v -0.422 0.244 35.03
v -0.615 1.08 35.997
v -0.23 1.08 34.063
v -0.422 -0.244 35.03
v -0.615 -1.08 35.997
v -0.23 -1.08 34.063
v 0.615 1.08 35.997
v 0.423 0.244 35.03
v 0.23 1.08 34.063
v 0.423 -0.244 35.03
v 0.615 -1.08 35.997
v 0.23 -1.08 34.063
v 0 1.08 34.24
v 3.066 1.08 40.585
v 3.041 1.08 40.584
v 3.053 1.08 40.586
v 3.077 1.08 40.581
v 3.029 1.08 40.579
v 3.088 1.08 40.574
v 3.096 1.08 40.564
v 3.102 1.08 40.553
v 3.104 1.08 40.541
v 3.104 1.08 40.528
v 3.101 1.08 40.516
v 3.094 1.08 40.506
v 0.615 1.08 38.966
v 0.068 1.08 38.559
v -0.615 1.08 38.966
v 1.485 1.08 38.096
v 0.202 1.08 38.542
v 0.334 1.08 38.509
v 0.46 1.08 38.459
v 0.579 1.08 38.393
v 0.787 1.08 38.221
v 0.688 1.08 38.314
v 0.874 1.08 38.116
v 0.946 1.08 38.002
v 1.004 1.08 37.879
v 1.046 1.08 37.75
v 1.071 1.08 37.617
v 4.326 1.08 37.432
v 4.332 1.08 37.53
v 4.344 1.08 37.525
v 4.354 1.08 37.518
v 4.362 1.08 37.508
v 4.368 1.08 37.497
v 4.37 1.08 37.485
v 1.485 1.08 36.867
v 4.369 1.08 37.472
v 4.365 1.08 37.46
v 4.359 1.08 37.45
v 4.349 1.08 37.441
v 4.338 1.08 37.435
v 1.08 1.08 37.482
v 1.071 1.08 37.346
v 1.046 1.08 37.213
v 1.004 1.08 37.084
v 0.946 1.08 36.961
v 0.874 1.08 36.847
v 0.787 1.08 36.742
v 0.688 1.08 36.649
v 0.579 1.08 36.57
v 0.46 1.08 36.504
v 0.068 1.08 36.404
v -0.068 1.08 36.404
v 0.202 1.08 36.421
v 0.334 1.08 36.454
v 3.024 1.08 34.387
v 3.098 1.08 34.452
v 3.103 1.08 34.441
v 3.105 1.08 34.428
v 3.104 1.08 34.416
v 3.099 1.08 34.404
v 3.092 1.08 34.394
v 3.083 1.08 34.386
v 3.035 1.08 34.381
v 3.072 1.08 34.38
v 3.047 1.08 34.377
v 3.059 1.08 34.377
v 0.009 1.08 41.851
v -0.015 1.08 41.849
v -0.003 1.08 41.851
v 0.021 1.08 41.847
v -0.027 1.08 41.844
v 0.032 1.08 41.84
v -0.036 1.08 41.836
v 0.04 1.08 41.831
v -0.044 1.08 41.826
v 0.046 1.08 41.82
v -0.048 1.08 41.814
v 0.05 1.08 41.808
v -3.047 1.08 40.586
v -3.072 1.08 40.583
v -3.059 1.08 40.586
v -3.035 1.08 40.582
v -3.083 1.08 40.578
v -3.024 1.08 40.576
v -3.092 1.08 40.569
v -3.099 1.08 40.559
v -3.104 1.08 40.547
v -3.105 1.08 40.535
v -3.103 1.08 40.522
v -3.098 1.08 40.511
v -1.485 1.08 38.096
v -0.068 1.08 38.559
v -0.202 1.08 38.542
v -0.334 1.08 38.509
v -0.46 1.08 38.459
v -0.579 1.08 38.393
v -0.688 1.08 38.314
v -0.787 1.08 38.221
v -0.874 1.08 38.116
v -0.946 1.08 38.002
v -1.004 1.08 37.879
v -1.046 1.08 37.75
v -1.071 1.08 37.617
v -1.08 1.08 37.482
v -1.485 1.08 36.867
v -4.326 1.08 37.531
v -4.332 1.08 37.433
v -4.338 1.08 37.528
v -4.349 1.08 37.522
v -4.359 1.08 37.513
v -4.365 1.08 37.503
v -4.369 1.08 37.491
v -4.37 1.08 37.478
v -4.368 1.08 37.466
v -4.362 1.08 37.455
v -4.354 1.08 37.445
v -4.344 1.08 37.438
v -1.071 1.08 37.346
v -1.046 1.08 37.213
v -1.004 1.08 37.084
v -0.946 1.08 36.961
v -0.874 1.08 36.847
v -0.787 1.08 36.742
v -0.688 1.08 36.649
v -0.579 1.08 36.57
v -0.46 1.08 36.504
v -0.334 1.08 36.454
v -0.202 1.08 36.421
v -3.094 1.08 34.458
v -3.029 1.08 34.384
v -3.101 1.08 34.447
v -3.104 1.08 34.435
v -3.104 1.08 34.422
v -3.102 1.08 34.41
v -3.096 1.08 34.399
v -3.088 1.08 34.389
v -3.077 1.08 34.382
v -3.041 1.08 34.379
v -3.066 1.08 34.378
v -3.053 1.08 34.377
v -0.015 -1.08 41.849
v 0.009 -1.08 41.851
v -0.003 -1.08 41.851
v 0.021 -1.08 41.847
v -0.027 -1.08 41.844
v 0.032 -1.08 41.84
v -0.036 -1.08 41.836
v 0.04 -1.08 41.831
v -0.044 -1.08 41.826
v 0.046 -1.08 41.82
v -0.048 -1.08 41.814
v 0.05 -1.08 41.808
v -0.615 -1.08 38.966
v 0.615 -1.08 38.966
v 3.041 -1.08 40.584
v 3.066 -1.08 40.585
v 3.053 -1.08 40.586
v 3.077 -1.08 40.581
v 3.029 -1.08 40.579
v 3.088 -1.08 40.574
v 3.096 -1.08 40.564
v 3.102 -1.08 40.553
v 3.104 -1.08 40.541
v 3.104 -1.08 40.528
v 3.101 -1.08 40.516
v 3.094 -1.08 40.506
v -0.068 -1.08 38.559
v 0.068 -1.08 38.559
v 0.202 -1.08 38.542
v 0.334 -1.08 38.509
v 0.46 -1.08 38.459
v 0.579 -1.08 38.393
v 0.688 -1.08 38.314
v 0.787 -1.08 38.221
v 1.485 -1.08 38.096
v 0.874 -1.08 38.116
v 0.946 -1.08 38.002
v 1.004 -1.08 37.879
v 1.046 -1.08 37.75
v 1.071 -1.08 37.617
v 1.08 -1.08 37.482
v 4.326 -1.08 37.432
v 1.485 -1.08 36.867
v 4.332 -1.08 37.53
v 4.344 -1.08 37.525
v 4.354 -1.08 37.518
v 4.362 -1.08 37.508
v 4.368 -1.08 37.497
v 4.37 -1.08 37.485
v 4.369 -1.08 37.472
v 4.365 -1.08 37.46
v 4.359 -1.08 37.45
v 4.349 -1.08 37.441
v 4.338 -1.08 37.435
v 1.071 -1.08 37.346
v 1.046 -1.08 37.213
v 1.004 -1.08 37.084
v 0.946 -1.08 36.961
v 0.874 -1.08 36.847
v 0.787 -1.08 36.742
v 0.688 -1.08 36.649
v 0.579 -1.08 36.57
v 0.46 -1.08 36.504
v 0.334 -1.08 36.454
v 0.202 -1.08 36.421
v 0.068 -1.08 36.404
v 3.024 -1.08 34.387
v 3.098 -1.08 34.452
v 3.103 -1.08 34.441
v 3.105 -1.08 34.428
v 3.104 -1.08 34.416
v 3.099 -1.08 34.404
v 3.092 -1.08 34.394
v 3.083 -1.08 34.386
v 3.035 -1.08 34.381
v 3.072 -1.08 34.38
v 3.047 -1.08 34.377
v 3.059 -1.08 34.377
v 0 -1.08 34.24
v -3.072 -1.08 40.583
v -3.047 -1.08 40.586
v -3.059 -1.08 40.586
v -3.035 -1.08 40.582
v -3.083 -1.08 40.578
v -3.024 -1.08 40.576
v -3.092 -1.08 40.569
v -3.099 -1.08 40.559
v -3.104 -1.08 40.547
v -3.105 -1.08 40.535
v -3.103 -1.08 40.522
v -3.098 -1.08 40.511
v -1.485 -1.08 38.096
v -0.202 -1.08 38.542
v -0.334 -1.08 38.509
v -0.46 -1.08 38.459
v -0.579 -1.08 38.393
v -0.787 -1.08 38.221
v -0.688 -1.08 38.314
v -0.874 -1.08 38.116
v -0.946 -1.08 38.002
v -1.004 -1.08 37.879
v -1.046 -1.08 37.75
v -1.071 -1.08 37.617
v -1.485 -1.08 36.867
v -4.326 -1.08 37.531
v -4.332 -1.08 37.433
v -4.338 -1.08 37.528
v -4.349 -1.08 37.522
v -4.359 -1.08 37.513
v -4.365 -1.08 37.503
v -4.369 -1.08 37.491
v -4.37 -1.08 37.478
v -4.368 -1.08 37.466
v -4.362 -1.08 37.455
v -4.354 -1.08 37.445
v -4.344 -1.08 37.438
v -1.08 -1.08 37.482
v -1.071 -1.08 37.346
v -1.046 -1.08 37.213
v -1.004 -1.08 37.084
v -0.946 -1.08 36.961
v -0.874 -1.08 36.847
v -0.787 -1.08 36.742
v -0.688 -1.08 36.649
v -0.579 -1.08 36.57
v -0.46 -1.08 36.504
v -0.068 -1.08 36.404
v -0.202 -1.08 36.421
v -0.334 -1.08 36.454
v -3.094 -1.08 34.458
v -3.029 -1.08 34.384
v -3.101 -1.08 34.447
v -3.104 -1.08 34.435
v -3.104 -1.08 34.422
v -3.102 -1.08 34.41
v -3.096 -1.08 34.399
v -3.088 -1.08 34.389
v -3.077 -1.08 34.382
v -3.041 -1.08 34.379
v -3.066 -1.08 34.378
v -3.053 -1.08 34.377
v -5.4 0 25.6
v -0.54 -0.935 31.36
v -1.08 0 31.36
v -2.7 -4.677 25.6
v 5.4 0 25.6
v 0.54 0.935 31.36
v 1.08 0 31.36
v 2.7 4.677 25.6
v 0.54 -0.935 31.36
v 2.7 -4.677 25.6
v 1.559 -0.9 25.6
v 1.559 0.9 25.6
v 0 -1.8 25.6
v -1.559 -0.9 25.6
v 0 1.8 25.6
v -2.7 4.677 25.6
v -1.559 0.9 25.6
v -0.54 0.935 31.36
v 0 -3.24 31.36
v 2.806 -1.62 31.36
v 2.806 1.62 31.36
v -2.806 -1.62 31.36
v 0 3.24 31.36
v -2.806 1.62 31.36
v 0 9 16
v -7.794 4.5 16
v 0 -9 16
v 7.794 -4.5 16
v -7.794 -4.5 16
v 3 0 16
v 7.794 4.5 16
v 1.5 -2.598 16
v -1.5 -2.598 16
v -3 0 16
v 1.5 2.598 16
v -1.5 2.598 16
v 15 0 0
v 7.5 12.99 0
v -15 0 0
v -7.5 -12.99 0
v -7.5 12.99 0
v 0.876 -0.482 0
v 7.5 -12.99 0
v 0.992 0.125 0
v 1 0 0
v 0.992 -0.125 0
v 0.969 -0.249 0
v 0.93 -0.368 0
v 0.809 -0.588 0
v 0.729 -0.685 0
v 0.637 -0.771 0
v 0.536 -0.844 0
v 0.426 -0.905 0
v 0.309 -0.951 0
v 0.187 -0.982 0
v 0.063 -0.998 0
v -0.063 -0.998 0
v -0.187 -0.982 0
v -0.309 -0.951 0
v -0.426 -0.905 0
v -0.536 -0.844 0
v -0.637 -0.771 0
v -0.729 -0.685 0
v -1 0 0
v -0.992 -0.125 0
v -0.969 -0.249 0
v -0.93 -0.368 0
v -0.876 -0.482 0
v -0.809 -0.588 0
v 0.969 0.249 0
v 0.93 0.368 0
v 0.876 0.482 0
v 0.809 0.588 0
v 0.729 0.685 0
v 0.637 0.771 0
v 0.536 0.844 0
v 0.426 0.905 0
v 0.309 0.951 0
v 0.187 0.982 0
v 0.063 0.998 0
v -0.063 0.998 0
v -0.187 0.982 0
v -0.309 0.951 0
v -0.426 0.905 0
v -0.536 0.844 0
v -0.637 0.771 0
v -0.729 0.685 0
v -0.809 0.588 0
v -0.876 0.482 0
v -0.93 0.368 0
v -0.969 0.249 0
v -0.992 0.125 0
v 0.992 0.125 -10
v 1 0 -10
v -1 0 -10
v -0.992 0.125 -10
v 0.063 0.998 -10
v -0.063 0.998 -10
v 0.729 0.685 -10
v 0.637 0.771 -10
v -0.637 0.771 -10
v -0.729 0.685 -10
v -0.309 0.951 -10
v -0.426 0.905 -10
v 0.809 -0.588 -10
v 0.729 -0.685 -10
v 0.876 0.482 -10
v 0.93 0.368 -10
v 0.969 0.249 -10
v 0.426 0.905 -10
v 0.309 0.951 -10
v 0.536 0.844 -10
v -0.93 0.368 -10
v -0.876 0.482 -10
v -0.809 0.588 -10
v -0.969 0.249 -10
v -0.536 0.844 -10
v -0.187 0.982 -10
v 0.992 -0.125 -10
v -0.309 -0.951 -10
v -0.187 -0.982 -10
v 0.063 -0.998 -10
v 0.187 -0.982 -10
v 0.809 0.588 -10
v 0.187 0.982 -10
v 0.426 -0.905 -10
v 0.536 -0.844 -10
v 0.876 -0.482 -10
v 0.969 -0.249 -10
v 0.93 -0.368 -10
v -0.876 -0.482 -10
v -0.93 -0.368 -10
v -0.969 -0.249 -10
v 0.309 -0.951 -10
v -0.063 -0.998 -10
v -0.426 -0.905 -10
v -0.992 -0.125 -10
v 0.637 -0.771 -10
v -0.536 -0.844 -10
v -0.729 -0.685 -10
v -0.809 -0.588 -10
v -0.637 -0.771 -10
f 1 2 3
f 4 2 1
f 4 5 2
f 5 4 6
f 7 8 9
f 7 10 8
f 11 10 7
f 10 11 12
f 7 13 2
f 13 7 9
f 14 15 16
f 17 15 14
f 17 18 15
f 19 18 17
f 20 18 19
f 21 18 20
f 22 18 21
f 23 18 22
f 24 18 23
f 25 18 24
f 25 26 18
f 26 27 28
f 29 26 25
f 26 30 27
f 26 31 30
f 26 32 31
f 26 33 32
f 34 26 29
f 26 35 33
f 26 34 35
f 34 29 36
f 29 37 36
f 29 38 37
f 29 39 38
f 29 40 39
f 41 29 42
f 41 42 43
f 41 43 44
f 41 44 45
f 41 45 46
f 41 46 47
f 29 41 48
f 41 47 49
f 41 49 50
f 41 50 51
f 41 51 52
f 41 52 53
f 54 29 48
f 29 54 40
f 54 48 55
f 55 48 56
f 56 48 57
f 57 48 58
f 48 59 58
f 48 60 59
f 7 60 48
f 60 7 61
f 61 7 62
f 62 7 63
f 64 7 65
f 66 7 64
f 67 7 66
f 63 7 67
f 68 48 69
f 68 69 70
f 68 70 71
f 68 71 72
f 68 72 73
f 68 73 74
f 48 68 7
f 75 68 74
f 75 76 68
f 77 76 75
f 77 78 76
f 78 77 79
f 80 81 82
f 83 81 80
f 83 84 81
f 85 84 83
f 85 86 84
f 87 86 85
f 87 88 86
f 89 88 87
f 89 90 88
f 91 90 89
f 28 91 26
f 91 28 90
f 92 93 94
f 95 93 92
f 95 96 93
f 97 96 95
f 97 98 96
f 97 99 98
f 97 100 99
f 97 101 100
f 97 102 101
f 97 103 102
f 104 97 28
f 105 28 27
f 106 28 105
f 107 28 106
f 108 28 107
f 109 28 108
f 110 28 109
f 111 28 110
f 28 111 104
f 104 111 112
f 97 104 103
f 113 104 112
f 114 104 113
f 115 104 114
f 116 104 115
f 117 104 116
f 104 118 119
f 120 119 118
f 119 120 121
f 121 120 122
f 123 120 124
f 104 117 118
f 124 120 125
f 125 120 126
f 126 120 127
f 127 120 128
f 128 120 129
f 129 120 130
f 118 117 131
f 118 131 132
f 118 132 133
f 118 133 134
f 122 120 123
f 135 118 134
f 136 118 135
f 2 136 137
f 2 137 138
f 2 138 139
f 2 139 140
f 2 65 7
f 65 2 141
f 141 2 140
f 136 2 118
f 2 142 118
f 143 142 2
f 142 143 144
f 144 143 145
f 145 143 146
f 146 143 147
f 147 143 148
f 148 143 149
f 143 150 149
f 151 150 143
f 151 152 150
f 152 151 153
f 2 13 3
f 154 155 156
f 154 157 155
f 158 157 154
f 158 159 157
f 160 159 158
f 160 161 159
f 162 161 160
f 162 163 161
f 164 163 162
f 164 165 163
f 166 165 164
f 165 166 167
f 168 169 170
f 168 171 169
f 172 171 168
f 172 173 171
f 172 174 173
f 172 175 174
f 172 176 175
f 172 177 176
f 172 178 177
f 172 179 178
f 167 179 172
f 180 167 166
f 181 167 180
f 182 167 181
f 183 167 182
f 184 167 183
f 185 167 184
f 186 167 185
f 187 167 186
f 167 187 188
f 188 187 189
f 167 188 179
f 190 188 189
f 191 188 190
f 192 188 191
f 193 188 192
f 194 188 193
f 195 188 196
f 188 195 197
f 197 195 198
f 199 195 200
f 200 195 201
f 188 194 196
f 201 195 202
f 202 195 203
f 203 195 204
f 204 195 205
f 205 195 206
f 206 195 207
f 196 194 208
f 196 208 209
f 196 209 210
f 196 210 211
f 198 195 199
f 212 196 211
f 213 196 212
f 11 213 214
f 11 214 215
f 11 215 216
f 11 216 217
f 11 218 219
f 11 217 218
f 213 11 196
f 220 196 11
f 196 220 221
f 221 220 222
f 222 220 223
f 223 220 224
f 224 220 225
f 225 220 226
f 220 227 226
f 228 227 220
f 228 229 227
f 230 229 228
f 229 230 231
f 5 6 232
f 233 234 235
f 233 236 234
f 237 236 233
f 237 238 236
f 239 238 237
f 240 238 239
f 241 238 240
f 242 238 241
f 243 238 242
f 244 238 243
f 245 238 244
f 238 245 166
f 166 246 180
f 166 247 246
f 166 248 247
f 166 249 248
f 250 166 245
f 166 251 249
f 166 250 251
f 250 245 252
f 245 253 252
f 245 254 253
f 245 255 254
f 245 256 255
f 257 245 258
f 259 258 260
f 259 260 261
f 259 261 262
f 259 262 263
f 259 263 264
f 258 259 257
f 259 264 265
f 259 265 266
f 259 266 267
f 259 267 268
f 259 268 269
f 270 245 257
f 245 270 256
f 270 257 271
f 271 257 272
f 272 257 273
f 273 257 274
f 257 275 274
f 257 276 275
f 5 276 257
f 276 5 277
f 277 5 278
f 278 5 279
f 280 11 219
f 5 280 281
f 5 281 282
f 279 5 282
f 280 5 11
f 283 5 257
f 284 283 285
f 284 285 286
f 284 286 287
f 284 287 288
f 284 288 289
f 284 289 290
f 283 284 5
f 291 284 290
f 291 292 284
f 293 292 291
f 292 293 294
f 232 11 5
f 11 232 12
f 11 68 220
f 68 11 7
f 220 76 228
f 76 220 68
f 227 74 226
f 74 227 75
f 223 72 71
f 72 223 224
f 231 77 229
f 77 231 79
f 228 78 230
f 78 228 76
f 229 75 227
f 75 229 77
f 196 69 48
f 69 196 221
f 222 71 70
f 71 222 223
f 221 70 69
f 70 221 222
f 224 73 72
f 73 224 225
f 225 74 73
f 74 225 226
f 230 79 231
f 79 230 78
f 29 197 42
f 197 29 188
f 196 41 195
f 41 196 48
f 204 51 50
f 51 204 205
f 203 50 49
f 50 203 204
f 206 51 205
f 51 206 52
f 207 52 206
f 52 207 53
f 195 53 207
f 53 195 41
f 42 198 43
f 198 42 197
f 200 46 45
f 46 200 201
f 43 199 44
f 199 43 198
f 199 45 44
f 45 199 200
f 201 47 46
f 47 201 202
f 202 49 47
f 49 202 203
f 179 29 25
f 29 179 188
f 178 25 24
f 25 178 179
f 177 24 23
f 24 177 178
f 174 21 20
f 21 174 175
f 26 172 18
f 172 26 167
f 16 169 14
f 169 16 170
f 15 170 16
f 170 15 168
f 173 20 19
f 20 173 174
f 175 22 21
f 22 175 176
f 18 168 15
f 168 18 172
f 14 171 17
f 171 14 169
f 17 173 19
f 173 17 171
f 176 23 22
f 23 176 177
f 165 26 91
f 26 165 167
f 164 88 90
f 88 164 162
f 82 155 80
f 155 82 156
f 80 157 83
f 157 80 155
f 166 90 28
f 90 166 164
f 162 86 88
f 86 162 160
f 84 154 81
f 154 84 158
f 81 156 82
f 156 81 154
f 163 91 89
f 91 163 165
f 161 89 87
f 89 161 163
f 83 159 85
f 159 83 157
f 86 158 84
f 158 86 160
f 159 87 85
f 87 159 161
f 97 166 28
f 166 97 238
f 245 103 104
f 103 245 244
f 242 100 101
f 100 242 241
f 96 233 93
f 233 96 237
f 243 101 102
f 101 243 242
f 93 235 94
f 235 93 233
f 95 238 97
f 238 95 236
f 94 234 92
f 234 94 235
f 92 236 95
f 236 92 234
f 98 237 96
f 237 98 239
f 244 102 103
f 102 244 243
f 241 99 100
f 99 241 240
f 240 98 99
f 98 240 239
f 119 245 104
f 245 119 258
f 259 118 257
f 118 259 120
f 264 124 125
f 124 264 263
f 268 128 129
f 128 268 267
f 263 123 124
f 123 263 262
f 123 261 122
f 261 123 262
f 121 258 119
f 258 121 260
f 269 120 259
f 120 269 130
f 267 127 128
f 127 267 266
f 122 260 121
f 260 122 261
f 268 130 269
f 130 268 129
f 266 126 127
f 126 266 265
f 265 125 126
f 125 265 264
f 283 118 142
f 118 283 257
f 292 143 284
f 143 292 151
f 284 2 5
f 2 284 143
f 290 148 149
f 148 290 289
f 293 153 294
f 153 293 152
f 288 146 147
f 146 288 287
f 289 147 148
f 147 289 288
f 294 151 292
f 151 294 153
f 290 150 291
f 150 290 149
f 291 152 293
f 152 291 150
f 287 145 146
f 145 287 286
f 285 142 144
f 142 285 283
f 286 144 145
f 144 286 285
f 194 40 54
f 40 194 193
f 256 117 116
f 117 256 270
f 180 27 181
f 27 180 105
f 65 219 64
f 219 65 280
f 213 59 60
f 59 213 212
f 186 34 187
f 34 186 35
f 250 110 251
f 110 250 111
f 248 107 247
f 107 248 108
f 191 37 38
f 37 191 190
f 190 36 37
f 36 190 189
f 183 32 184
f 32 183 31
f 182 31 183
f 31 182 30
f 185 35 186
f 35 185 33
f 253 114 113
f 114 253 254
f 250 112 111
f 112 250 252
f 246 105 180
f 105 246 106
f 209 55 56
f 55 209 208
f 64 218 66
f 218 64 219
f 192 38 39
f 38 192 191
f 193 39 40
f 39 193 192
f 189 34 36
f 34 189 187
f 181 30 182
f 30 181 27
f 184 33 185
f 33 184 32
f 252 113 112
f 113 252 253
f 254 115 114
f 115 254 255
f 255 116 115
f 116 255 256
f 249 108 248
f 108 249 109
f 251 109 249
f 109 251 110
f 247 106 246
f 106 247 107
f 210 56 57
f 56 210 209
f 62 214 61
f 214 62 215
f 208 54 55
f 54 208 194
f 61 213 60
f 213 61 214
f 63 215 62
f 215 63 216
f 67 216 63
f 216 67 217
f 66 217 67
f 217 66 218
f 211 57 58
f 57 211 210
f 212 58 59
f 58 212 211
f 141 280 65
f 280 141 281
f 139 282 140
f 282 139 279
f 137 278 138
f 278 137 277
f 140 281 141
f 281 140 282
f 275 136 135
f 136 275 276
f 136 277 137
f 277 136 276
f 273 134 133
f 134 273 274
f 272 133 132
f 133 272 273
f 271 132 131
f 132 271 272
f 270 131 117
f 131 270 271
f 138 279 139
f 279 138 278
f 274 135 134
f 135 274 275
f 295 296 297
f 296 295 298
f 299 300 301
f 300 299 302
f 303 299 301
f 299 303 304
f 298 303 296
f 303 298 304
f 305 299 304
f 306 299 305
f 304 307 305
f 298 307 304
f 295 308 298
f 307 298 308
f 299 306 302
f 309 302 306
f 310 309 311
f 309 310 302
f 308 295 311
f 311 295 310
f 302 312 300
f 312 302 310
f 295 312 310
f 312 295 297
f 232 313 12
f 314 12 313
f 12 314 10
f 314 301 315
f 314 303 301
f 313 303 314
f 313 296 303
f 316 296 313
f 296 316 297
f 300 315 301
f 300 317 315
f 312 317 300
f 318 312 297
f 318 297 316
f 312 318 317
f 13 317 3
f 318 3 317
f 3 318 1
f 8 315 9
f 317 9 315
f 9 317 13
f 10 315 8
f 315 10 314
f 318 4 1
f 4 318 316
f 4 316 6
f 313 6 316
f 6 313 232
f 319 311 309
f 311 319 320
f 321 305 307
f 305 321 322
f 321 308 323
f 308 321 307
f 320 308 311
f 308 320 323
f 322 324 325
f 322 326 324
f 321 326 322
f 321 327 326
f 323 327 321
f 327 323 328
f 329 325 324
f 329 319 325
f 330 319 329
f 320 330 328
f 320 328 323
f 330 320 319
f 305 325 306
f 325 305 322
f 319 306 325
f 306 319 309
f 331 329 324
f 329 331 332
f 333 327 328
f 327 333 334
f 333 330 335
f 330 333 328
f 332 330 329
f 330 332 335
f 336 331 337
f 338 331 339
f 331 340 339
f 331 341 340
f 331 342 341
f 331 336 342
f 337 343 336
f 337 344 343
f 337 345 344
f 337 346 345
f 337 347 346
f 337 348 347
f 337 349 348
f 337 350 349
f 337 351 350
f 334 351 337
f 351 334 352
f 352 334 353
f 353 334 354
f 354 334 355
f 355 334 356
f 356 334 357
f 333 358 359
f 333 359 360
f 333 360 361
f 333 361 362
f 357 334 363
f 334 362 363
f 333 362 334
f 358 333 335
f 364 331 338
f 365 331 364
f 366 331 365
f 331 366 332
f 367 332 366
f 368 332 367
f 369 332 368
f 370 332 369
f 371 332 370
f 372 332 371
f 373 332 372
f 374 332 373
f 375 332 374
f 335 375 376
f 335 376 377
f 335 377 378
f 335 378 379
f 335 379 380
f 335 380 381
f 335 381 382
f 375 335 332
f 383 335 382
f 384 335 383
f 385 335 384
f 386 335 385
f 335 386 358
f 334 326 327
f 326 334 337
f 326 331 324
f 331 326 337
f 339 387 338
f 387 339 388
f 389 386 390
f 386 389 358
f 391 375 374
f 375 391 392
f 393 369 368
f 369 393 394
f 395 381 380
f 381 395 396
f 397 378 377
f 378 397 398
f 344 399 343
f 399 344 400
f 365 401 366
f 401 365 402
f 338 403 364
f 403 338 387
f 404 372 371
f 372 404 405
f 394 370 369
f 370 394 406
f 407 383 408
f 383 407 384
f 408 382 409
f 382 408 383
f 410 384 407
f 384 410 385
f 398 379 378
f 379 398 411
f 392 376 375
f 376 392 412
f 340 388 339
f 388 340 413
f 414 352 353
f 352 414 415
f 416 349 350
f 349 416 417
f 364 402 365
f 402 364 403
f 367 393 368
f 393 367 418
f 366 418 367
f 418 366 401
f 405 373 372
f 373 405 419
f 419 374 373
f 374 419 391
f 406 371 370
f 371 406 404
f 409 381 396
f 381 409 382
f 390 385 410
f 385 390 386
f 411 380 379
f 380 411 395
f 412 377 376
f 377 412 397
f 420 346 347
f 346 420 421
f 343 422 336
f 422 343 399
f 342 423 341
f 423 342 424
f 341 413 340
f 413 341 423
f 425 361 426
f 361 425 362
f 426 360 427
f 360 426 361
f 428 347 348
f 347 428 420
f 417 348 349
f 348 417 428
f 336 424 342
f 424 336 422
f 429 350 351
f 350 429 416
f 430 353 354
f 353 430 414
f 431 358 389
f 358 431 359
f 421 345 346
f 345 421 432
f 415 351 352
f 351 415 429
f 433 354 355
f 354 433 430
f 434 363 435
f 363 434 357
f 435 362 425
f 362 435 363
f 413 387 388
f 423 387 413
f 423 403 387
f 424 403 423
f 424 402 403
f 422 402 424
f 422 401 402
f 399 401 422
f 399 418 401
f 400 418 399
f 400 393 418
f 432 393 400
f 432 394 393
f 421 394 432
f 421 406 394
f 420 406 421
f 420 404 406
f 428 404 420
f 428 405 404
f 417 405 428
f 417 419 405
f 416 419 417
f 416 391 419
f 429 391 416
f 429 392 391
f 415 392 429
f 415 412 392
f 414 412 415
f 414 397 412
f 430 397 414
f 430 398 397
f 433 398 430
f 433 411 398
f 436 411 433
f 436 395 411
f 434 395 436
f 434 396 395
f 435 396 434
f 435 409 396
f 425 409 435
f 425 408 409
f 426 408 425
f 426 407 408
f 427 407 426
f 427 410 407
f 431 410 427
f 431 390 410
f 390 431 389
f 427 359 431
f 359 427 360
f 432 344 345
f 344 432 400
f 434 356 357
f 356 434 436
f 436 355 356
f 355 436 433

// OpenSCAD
// file: star_3d.scad
/** star_3d.scad  
 *  
 *  Author:             Mike Beyerle (mbeyerle116)
 *  Downloaded from:    https://www.thingiverse.com/thing:1118817/
 */


// number of points on the star (3 or more makes sense)
_points = 7;
// length of ech point from center.  1/2 the rounding value will be added to the length
_point_len = 25;
// used to adjust width of each point +/-
_adjust = 0;
// point height at end of points (thinkness of objet at thinest part. Should be less than cent_h
_pnt_h = 1;
// height at center of star. set equal to pnt_h for flat object
_cent_h = 3;
// diameter of rounding at end of point (must be greater than 0).
_rnd=1;

// resolution for rounded point
_fn = 25;


// modules in library:
module star_3d(points, point_len, adjust=0, pnt_h =1, cent_h=1, rnd=0.1, fn=25)
{
    // star_3d: star with raised center.
    //----------------------------------------------//
    // points = num points on star (should be >3.  
    //          Using 3 may require addisional 
    //          adjust be applied.)
    // point_len = len of point on star 
    //              (actual len of point will add 
    //              1/2 rnd to the length.)
    // adjust = +/- adjust of width of point
    // pnt_h = height of star at end of point
    // cent_h = height of star in center needs to be > pnt_h to have effect.
    // rnd = roundness of end of point (diameter)
    // fn = $fn value for rounded point
    //----------------------------------------------//
    
    point_deg= 360/points;
    point_deg_adjusted = point_deg + (-point_deg/2) +  adjust;
    
    if(points == 3 && adjust == 0)
    {  // make a pyramid (this is to avoid rendering 
       //            issues in this special case)
        hull()
        {
           for(i=[0:2])
           {
               rotate([0,0,i*point_deg])
               translate([point_len,0,0])
                    cylinder(pnt_h, d=rnd, $fn=fn);
           }
           cylinder(cent_h, d=.001);
        }
    }
    else
    { // use algorithm
        for(i=[0:points-1])
        {
            rotate([0,0,i * point_deg]) 
                translate([0,-point_len,0]) 
                point(point_deg_adjusted, 
                      point_len, 
                      rnd, 
                      pnt_h, 
                      cent_h, 
                      fn);
        }
    }

}

module point(deg, leng, rnd, h1, h2, fn=25)
{   // create a point of the star.
    hull()
    {
        cylinder(h1, d=rnd, $fn=fn);
        translate([0,leng,0]) cylinder(h2, d=.001);
        rotate([0,0,-deg/2]) 
            translate([0,leng,0]) cylinder(h1, d=rnd);
        rotate([0,0,deg/2]) 
            translate([0,leng,0]) cylinder(h1, d=rnd);
    }
}


// test object:
star_3d(
    points      = 5,
    point_len   = 0.9*10,
    adjust      = 0
//        pnt_h = _pnt_h, 
//        cent_h =_cent_h, 
//        rnd = _rnd,
//        fn = _fn
);
// main file
use <./star_3d.scad>;

module koruna( prumer, vyska, pomer, prekryti, uroven ) {
    color("green")
        cylinder( d1=prumer, d2=0, h=vyska, $fn=6 );
    if ( uroven > 1 )
        rotate([0,0,90])
            translate([ 0, 0, vyska*prekryti ])
                koruna( prumer*pomer, vyska*pomer, pomer, prekryti, uroven-1 );
}

module hvezda( a = 10, n = 8 ) {
    difference() {
        translate([0,0,-a/4])
            star_3d( points=n, point_len=a, pnt_h = a/2, cent_h = a/2 );
        cylinder( d=a/2, h=a, center=true );
    }
}

module stromecek(
    prumer      = 20,
    vyska       = 10,
    pomer       = 0.6,
    prekryti    = 0.8,
    uroven      = 4,
    hvezda      = true,
    ostatni     = true,
) {
    if (ostatni) {
        // strom -------------------------------------------
        koruna( prumer, vyska, pomer, prekryti, uroven );

        // kmen --------------------------------------------
        color("brown")
            translate([0,0,-vyska/2])
            cylinder( prumer=prumer/4, h=vyska/2 ); 
    }
    // hvezda ----------------------------------------------
    if ( hvezda ) {
        velikost    = vyska*pow(pomer,uroven-1);
        koeficient  = pomer*prekryti;
        soucet      = vyska*(1-pow(koeficient,uroven))/(1-koeficient);
        color("yellow")
            translate( [0,0,1]*soucet + [0,0,1]*vyska*pow(pomer*prekryti,uroven) )
                rotate([90,0,0])
                    hvezda( velikost );
    }
}

stromecek( prumer=30, vyska=20, $fn=50, uroven=4, hvezda=true, ostatni=true );
